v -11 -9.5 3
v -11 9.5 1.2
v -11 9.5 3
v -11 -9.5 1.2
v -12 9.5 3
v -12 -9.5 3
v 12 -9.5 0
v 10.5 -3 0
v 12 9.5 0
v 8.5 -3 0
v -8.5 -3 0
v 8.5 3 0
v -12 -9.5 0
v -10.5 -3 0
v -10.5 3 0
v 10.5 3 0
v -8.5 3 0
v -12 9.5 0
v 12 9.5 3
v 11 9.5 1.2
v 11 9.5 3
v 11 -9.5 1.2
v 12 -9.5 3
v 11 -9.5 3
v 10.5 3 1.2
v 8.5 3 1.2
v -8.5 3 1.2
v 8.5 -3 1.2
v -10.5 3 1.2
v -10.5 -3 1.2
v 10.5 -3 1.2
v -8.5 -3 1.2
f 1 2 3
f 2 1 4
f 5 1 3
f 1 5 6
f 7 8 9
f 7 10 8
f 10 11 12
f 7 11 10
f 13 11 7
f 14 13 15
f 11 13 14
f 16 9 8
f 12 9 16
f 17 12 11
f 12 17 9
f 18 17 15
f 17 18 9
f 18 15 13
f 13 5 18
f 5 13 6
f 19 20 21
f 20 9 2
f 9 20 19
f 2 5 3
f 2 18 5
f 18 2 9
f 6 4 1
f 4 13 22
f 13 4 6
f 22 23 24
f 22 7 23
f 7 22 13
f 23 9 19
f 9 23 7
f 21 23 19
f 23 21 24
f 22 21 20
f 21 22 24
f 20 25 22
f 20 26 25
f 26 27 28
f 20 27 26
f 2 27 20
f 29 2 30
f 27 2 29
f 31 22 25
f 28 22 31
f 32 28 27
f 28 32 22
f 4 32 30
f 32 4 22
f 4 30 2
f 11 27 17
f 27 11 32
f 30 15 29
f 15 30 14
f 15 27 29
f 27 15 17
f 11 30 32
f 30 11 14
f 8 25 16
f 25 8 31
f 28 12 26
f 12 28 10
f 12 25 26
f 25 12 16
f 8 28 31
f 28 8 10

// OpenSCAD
// GY-521 clearance envelope 22 x 17 mm; rigid attachment plus nonconductive strap.
// Keep module horizontal. Verify printed sensor axis marks before commissioning.
difference(){
  union(){
    translate([-12,-9.5,0])cube([24,19,1.2]);
    for(x=[-12,11])translate([x,-9.5,0])cube([1,19,3]);
  }
  for(x=[-10.5,8.5])translate([x,-3,-.1])cube([2,6,1.4]);
}
